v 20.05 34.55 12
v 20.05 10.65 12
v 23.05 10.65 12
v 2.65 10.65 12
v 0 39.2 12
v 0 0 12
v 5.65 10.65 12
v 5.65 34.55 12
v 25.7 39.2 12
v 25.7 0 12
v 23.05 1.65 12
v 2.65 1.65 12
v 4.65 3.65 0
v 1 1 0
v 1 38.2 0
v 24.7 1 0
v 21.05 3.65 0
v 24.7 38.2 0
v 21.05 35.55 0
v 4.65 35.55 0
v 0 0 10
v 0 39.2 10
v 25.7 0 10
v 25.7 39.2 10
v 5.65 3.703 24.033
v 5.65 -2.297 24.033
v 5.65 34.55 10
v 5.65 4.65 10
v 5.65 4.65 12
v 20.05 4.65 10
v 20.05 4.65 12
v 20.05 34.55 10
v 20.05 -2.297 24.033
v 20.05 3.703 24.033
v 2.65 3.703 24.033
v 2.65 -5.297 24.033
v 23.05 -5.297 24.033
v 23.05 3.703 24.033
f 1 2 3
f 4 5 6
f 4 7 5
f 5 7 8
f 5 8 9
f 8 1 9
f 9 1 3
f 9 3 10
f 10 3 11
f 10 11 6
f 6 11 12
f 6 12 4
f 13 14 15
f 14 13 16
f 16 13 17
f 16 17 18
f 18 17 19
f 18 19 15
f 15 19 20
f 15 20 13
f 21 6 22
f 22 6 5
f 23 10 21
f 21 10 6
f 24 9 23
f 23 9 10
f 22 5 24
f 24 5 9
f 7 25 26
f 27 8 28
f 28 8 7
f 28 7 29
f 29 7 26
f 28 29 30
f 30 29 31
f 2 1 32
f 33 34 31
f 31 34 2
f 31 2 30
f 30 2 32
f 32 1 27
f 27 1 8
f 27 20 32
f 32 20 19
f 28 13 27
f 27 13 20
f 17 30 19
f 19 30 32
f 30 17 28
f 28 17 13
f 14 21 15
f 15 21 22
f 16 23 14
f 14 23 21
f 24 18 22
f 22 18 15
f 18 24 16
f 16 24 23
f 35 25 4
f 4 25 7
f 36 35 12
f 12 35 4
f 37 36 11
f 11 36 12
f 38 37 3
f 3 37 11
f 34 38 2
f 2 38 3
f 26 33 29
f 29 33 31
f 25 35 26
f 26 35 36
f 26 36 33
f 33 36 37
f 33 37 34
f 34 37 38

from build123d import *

# Parameters (mm, degrees)
SKETCH3_W           = 25.7
SKETCH3_H           = 39.2
SKETCH3_W_2         = 14.4
SKETCH3_H_2         = 29.9
BOSS_EXTRUDE2_DEPTH = 12
CHAMFER1_SIZE       = 1
CHAMFER1_SIZE2      = 10


with BuildPart() as part:
    # Sketch3 → Boss-Extrude2 (new body)
    with BuildSketch(Plane.XY):
        with Locations((12.85, 19.6)):
            Rectangle(SKETCH3_W, SKETCH3_H)
        with Locations((12.85, 19.6)):
            Rectangle(SKETCH3_W_2, SKETCH3_H_2, mode=Mode.SUBTRACT)
    extrude(amount=BOSS_EXTRUDE2_DEPTH)

    # Chamfer1
    chamfer1_edges = [part.edges().sort_by_distance(p)[0] for p in [
        (5.65, 19.6, 0),
        (12.85, 4.65, 0),
        (20.05, 19.6, 0),
        (12.85, 34.55, 0),
        (12.85, 39.2, 0),
        (25.7, 19.6, 0),
        (12.85, 0, 0),
        (0, 19.6, 0),
    ]]
    chamfer1_side = [part.faces().sort_by_distance(p)[0] for p in [
        (12.85, 0.468735533, 0),
    ]]
    chamfer(chamfer1_edges, length=CHAMFER1_SIZE, length2=CHAMFER1_SIZE2, reference=chamfer1_side[0])

    # Sweep1: sweep along a path in Sketch6
    with BuildLine(Plane.ZY.offset(-12.85)) as sweep1_path:
        Line((12, 4.65), (24.033327649, -2.297444957))
    # Sketch4 → Sweep1 (sweep)
    with BuildSketch(Plane.XY.offset(12)):
        Polygon((5.65, 10.65), (2.65, 10.65), (2.65, 1.65), (23.05, 1.65), (23.05, 10.65), (20.05, 10.65), (20.05, 4.65), (5.65, 4.65), align=None)
    sweep(path=sweep1_path.line)


solid = part.part
